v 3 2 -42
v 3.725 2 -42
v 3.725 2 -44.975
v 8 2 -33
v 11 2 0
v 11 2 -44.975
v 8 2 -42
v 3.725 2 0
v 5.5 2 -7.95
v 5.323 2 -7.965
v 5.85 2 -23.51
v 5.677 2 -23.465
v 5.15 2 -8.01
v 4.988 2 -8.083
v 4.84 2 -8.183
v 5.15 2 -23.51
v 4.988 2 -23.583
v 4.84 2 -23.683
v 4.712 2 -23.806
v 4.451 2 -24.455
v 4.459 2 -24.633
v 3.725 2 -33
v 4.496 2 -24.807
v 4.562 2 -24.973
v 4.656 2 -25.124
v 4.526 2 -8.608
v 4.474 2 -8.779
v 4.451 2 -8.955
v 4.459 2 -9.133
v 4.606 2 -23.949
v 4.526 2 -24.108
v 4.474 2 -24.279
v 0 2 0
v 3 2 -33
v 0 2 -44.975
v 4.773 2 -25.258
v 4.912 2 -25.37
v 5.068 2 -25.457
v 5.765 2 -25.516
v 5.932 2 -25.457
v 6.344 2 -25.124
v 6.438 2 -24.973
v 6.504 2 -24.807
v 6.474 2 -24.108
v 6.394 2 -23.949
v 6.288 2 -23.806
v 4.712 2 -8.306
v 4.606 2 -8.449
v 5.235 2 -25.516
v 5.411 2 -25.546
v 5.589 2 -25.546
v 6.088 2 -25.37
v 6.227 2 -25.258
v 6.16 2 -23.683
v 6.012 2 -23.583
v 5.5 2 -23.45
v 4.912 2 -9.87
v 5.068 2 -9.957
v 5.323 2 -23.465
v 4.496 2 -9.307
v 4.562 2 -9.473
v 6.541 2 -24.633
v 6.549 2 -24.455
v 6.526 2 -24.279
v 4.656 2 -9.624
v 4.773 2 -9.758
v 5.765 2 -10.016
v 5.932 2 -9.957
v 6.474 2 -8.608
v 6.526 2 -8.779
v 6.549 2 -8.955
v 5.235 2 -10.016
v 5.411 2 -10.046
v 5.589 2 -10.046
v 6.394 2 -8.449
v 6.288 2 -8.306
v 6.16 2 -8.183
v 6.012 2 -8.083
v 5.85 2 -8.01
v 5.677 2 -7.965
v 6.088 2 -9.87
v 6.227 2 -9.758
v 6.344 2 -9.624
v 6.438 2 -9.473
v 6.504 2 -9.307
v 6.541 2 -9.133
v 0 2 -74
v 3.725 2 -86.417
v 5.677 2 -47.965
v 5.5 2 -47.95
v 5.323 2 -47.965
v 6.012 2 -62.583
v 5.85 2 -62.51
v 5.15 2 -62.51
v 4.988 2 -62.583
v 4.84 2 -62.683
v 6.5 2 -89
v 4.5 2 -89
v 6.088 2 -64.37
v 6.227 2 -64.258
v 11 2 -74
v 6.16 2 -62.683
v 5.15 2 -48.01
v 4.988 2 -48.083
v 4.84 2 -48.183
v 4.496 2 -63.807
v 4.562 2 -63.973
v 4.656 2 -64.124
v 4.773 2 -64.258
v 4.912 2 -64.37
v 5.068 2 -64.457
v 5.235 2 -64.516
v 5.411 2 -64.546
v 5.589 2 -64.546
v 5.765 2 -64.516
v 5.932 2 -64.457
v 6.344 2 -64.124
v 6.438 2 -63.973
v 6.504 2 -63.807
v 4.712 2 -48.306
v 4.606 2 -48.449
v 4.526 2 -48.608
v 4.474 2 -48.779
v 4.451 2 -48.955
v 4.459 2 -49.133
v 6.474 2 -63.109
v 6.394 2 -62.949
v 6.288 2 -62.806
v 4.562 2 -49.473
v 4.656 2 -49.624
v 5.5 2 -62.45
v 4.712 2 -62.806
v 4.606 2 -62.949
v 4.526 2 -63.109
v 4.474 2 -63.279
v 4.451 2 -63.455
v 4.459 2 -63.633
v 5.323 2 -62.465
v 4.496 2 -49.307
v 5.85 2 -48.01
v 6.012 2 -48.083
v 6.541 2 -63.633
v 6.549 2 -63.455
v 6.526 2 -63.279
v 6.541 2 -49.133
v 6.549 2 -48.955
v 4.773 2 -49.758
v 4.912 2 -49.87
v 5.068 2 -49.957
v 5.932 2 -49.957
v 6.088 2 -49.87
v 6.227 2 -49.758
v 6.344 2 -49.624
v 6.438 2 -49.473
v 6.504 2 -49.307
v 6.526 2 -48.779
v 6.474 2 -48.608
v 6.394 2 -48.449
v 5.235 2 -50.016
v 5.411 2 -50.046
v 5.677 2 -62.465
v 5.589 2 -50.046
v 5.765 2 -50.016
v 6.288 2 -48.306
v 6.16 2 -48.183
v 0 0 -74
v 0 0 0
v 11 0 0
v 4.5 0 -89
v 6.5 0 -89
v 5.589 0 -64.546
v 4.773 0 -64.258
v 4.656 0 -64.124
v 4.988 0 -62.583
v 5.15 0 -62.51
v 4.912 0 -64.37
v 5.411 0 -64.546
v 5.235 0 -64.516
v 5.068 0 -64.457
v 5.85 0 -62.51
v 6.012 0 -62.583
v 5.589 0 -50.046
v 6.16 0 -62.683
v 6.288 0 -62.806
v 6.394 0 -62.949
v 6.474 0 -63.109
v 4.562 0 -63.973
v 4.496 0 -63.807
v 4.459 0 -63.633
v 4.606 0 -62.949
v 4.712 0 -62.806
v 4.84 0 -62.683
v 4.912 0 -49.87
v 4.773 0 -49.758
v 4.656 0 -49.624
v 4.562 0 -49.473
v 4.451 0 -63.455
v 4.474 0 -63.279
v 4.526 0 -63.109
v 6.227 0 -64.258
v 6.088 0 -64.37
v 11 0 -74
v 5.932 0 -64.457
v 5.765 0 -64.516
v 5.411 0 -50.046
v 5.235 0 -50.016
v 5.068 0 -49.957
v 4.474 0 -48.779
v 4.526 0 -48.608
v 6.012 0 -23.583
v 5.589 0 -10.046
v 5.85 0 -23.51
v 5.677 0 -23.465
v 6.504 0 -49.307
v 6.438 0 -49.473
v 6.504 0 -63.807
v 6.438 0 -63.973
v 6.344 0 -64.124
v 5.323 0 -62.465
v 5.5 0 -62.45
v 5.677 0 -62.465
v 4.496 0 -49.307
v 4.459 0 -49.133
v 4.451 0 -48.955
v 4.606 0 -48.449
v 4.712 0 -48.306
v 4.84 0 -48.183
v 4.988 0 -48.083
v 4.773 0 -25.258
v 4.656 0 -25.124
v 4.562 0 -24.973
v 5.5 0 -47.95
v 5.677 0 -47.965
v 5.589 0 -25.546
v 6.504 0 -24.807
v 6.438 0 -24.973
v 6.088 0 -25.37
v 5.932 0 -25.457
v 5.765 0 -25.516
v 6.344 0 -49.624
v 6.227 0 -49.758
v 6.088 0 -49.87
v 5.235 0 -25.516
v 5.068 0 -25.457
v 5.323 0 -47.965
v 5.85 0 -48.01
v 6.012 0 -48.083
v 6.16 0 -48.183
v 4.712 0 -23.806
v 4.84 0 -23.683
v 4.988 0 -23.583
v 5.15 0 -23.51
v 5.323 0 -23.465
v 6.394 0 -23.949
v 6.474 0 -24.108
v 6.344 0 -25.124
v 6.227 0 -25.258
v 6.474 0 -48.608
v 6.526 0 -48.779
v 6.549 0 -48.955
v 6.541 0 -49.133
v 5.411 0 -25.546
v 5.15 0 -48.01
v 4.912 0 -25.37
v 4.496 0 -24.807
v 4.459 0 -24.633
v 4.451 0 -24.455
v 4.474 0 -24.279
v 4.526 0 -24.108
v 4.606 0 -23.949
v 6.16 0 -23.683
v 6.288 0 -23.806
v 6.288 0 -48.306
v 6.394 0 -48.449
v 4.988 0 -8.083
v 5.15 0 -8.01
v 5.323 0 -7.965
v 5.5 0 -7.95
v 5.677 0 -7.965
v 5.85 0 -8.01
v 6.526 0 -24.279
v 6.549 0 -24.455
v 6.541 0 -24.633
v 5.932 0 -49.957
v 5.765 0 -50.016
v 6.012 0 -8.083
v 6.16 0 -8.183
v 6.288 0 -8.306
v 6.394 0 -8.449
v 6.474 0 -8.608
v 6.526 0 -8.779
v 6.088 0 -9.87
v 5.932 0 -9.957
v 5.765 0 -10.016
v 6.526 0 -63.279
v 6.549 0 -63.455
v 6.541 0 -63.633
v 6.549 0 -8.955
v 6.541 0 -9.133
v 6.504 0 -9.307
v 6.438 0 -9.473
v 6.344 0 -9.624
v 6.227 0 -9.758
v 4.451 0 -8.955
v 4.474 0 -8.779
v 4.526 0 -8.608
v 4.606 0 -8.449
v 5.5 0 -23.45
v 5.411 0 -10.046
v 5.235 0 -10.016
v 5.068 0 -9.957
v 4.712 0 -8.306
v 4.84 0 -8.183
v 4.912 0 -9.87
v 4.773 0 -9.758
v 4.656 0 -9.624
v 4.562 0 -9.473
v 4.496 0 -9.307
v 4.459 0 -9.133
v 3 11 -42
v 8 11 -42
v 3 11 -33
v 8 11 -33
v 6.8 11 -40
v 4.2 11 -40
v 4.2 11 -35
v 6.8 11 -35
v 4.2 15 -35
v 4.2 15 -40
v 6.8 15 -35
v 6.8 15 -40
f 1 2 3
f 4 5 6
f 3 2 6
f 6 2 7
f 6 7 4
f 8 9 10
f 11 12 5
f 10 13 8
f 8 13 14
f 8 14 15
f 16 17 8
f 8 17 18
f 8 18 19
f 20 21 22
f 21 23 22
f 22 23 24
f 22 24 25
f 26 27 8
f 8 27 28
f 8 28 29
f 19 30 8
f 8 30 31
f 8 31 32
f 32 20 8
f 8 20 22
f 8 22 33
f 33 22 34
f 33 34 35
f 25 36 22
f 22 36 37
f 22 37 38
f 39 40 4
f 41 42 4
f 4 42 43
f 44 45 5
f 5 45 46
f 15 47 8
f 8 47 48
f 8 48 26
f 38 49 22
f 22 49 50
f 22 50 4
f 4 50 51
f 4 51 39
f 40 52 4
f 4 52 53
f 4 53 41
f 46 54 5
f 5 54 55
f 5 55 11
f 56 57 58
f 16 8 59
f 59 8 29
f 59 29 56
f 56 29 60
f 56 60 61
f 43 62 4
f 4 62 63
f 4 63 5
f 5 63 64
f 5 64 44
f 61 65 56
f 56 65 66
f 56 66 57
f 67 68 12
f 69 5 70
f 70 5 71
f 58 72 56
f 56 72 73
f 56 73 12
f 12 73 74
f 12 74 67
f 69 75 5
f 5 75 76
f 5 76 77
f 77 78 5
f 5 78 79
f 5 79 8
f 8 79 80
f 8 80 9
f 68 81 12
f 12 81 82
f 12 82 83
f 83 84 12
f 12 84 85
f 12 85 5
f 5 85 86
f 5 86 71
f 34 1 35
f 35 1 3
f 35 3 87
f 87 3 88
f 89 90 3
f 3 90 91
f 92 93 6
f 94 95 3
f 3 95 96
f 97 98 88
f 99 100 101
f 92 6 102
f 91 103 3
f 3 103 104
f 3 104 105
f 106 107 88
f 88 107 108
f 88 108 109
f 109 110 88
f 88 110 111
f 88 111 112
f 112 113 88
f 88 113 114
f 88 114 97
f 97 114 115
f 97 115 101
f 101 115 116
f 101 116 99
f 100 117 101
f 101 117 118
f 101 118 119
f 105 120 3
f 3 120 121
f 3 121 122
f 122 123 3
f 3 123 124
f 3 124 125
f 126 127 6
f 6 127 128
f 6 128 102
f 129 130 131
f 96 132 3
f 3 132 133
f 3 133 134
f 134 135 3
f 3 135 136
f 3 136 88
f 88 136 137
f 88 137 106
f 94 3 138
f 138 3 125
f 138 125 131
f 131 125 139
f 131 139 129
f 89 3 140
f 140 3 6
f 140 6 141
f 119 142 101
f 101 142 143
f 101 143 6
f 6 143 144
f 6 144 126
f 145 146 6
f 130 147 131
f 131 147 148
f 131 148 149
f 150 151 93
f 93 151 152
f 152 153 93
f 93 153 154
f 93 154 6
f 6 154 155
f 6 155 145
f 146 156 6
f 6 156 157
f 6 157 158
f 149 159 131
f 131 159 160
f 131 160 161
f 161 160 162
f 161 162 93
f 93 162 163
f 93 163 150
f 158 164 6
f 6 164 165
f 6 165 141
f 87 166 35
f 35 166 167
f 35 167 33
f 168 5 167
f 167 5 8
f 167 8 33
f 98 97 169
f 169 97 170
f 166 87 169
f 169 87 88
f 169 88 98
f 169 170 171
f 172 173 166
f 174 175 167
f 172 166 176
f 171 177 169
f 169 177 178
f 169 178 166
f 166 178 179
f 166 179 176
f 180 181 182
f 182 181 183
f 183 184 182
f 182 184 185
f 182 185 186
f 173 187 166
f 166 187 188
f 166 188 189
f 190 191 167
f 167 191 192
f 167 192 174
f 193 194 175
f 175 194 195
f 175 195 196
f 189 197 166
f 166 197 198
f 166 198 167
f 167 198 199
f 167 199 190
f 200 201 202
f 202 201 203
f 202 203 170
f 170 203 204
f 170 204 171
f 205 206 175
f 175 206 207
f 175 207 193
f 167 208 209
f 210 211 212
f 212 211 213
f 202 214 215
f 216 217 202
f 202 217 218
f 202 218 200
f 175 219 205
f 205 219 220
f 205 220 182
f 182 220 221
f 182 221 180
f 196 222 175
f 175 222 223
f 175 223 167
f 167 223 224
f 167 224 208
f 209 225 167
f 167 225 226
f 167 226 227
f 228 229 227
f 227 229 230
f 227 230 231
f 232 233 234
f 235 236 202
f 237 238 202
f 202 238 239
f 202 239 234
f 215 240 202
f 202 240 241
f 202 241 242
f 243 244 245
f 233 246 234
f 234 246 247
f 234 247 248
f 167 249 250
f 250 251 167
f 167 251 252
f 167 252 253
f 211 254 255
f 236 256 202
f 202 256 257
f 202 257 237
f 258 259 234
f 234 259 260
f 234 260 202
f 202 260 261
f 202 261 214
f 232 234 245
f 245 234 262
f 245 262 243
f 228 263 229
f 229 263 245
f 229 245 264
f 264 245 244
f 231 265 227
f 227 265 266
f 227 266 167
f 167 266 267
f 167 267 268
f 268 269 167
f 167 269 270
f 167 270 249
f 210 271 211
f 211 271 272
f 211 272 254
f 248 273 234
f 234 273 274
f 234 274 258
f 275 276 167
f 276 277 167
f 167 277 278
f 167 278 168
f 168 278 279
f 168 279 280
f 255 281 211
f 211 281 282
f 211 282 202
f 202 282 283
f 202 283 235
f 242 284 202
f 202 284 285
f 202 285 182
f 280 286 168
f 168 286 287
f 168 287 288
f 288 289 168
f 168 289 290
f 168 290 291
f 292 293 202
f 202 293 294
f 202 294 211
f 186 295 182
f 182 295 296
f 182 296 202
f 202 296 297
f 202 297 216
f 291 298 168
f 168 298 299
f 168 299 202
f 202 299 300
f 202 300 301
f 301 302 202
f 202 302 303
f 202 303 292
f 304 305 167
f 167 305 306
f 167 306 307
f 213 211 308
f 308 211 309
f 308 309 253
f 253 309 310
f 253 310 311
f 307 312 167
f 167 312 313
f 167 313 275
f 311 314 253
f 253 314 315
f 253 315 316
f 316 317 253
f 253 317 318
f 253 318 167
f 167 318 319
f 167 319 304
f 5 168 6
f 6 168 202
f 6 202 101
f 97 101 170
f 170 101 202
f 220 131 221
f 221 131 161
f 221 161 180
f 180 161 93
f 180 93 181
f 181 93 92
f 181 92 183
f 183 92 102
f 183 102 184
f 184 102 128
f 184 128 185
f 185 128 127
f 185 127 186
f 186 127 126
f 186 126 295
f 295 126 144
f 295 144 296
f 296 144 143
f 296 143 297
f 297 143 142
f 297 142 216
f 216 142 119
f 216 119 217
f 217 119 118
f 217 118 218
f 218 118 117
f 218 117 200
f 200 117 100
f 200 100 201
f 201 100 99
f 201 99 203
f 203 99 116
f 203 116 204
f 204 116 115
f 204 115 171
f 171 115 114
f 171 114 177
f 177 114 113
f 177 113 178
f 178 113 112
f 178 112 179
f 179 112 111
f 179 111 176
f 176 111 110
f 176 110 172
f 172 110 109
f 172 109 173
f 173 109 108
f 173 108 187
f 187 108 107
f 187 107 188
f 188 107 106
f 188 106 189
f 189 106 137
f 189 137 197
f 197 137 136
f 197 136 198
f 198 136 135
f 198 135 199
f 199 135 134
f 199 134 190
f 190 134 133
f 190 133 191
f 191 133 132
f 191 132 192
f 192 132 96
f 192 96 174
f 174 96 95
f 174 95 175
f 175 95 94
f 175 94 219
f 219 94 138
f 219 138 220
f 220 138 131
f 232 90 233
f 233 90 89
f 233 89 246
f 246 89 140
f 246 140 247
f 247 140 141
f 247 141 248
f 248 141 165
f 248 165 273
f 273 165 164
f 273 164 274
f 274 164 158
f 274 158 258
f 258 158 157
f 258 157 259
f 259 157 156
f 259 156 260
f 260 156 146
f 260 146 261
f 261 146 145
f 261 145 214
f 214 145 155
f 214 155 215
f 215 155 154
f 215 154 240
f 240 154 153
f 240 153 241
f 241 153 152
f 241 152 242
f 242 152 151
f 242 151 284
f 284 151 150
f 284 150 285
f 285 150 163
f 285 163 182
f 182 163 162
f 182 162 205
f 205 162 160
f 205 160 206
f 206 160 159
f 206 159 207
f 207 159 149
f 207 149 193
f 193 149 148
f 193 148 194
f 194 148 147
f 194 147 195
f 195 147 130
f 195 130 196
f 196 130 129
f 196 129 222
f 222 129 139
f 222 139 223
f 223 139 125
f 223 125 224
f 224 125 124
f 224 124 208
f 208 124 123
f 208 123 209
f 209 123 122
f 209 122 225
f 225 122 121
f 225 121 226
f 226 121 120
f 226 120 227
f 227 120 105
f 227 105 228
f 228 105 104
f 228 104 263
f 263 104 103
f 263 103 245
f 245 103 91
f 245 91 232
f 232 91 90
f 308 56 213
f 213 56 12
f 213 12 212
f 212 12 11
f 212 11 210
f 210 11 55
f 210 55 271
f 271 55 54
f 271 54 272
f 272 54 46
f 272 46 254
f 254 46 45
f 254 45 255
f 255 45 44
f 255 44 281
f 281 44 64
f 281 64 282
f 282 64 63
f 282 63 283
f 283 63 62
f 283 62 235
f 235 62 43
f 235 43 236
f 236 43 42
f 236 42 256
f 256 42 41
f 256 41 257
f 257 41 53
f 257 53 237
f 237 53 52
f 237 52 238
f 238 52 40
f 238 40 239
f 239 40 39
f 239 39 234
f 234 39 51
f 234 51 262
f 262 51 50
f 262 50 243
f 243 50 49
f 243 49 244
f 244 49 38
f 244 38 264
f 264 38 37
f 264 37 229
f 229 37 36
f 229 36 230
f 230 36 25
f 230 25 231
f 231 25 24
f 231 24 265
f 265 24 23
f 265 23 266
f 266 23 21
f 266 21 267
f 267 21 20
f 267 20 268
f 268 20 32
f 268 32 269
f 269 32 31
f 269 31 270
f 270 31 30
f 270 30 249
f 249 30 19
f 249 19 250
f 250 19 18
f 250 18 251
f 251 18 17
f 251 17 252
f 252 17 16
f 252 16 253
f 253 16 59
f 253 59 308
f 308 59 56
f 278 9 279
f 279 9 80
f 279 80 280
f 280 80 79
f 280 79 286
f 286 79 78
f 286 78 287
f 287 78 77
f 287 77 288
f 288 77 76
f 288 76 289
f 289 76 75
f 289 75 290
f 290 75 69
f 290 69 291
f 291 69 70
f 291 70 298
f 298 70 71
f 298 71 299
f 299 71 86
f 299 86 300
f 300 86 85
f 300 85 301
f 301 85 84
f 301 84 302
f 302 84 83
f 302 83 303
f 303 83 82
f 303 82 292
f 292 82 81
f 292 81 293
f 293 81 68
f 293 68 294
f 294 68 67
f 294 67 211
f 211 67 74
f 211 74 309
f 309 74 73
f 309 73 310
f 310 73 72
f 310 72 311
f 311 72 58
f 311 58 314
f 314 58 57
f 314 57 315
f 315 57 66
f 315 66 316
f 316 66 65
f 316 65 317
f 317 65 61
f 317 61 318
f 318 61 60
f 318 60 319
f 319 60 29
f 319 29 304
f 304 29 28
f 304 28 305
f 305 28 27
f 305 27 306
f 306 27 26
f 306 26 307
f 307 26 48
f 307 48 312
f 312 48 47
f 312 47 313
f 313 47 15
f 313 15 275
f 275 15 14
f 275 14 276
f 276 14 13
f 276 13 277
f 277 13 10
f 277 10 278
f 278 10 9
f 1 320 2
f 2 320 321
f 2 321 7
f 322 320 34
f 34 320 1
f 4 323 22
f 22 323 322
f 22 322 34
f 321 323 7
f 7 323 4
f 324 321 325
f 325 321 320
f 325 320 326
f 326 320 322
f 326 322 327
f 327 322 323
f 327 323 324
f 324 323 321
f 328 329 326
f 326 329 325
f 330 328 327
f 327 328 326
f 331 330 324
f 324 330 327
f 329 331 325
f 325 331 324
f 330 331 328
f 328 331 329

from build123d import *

# Parameters (mm, degrees)
BOSS_EXTRUDE1_DEPTH = 2
SKETCH3_R           = 1.05
CUT_EXTRUDE1_DEPTH  = 2
SKETCH4_W           = 5
SKETCH4_H           = 9
BOSS_EXTRUDE2_DEPTH = 9
SKETCH5_W           = 2.6
SKETCH5_H           = 5
BOSS_EXTRUDE3_DEPTH = 4


with BuildPart() as part:
    # Sketch2 → Boss-Extrude1 (new body)
    with BuildSketch(Plane(origin=(0, 0, 0), x_dir=(1, 0, 0), z_dir=(0, 1, 0))):
        Polygon((0, 0), (5.5, 0), (5.5, 89), (4.5, 89), (0, 74), align=None)
    extrude(amount=BOSS_EXTRUDE1_DEPTH)

    # Mirror1: part across plane


with BuildPart() as part_1:
    add(part.part)
    add(part.part.mirror(Plane(origin=(5.5, 2, 0), x_dir=(0, 0, 1), z_dir=(-1, 0, 0))))

    # Sketch3 → Cut-Extrude1 (cut)
    with BuildSketch(Plane(origin=(0, 2, 0), x_dir=(1, 0, 0), z_dir=(0, 1, 0))):
        with Locations((5.5, 9)):
            Circle(SKETCH3_R)
        with Locations((5.5, 24.5)):
            Circle(SKETCH3_R)
        with Locations((5.5, 49)):
            Circle(SKETCH3_R)
        with Locations((5.5, 63.5)):
            Circle(SKETCH3_R)
    extrude(amount=-CUT_EXTRUDE1_DEPTH, mode=Mode.SUBTRACT)

    # Sketch4 → Boss-Extrude2 (add)
    with BuildSketch(Plane(origin=(0, 2, 0), x_dir=(1, 0, 0), z_dir=(0, 1, 0))):
        with Locations((5.5, 37.5)):
            Rectangle(SKETCH4_W, SKETCH4_H)
    extrude(amount=BOSS_EXTRUDE2_DEPTH)

    # Sketch5 → Boss-Extrude3 (add)
    with BuildSketch(Plane(origin=(0, 11, 0), x_dir=(1, 0, 0), z_dir=(0, 1, 0))):
        with Locations((5.5, 37.5)):
            Rectangle(SKETCH5_W, SKETCH5_H)
    extrude(amount=BOSS_EXTRUDE3_DEPTH)


solid = part_1.part
